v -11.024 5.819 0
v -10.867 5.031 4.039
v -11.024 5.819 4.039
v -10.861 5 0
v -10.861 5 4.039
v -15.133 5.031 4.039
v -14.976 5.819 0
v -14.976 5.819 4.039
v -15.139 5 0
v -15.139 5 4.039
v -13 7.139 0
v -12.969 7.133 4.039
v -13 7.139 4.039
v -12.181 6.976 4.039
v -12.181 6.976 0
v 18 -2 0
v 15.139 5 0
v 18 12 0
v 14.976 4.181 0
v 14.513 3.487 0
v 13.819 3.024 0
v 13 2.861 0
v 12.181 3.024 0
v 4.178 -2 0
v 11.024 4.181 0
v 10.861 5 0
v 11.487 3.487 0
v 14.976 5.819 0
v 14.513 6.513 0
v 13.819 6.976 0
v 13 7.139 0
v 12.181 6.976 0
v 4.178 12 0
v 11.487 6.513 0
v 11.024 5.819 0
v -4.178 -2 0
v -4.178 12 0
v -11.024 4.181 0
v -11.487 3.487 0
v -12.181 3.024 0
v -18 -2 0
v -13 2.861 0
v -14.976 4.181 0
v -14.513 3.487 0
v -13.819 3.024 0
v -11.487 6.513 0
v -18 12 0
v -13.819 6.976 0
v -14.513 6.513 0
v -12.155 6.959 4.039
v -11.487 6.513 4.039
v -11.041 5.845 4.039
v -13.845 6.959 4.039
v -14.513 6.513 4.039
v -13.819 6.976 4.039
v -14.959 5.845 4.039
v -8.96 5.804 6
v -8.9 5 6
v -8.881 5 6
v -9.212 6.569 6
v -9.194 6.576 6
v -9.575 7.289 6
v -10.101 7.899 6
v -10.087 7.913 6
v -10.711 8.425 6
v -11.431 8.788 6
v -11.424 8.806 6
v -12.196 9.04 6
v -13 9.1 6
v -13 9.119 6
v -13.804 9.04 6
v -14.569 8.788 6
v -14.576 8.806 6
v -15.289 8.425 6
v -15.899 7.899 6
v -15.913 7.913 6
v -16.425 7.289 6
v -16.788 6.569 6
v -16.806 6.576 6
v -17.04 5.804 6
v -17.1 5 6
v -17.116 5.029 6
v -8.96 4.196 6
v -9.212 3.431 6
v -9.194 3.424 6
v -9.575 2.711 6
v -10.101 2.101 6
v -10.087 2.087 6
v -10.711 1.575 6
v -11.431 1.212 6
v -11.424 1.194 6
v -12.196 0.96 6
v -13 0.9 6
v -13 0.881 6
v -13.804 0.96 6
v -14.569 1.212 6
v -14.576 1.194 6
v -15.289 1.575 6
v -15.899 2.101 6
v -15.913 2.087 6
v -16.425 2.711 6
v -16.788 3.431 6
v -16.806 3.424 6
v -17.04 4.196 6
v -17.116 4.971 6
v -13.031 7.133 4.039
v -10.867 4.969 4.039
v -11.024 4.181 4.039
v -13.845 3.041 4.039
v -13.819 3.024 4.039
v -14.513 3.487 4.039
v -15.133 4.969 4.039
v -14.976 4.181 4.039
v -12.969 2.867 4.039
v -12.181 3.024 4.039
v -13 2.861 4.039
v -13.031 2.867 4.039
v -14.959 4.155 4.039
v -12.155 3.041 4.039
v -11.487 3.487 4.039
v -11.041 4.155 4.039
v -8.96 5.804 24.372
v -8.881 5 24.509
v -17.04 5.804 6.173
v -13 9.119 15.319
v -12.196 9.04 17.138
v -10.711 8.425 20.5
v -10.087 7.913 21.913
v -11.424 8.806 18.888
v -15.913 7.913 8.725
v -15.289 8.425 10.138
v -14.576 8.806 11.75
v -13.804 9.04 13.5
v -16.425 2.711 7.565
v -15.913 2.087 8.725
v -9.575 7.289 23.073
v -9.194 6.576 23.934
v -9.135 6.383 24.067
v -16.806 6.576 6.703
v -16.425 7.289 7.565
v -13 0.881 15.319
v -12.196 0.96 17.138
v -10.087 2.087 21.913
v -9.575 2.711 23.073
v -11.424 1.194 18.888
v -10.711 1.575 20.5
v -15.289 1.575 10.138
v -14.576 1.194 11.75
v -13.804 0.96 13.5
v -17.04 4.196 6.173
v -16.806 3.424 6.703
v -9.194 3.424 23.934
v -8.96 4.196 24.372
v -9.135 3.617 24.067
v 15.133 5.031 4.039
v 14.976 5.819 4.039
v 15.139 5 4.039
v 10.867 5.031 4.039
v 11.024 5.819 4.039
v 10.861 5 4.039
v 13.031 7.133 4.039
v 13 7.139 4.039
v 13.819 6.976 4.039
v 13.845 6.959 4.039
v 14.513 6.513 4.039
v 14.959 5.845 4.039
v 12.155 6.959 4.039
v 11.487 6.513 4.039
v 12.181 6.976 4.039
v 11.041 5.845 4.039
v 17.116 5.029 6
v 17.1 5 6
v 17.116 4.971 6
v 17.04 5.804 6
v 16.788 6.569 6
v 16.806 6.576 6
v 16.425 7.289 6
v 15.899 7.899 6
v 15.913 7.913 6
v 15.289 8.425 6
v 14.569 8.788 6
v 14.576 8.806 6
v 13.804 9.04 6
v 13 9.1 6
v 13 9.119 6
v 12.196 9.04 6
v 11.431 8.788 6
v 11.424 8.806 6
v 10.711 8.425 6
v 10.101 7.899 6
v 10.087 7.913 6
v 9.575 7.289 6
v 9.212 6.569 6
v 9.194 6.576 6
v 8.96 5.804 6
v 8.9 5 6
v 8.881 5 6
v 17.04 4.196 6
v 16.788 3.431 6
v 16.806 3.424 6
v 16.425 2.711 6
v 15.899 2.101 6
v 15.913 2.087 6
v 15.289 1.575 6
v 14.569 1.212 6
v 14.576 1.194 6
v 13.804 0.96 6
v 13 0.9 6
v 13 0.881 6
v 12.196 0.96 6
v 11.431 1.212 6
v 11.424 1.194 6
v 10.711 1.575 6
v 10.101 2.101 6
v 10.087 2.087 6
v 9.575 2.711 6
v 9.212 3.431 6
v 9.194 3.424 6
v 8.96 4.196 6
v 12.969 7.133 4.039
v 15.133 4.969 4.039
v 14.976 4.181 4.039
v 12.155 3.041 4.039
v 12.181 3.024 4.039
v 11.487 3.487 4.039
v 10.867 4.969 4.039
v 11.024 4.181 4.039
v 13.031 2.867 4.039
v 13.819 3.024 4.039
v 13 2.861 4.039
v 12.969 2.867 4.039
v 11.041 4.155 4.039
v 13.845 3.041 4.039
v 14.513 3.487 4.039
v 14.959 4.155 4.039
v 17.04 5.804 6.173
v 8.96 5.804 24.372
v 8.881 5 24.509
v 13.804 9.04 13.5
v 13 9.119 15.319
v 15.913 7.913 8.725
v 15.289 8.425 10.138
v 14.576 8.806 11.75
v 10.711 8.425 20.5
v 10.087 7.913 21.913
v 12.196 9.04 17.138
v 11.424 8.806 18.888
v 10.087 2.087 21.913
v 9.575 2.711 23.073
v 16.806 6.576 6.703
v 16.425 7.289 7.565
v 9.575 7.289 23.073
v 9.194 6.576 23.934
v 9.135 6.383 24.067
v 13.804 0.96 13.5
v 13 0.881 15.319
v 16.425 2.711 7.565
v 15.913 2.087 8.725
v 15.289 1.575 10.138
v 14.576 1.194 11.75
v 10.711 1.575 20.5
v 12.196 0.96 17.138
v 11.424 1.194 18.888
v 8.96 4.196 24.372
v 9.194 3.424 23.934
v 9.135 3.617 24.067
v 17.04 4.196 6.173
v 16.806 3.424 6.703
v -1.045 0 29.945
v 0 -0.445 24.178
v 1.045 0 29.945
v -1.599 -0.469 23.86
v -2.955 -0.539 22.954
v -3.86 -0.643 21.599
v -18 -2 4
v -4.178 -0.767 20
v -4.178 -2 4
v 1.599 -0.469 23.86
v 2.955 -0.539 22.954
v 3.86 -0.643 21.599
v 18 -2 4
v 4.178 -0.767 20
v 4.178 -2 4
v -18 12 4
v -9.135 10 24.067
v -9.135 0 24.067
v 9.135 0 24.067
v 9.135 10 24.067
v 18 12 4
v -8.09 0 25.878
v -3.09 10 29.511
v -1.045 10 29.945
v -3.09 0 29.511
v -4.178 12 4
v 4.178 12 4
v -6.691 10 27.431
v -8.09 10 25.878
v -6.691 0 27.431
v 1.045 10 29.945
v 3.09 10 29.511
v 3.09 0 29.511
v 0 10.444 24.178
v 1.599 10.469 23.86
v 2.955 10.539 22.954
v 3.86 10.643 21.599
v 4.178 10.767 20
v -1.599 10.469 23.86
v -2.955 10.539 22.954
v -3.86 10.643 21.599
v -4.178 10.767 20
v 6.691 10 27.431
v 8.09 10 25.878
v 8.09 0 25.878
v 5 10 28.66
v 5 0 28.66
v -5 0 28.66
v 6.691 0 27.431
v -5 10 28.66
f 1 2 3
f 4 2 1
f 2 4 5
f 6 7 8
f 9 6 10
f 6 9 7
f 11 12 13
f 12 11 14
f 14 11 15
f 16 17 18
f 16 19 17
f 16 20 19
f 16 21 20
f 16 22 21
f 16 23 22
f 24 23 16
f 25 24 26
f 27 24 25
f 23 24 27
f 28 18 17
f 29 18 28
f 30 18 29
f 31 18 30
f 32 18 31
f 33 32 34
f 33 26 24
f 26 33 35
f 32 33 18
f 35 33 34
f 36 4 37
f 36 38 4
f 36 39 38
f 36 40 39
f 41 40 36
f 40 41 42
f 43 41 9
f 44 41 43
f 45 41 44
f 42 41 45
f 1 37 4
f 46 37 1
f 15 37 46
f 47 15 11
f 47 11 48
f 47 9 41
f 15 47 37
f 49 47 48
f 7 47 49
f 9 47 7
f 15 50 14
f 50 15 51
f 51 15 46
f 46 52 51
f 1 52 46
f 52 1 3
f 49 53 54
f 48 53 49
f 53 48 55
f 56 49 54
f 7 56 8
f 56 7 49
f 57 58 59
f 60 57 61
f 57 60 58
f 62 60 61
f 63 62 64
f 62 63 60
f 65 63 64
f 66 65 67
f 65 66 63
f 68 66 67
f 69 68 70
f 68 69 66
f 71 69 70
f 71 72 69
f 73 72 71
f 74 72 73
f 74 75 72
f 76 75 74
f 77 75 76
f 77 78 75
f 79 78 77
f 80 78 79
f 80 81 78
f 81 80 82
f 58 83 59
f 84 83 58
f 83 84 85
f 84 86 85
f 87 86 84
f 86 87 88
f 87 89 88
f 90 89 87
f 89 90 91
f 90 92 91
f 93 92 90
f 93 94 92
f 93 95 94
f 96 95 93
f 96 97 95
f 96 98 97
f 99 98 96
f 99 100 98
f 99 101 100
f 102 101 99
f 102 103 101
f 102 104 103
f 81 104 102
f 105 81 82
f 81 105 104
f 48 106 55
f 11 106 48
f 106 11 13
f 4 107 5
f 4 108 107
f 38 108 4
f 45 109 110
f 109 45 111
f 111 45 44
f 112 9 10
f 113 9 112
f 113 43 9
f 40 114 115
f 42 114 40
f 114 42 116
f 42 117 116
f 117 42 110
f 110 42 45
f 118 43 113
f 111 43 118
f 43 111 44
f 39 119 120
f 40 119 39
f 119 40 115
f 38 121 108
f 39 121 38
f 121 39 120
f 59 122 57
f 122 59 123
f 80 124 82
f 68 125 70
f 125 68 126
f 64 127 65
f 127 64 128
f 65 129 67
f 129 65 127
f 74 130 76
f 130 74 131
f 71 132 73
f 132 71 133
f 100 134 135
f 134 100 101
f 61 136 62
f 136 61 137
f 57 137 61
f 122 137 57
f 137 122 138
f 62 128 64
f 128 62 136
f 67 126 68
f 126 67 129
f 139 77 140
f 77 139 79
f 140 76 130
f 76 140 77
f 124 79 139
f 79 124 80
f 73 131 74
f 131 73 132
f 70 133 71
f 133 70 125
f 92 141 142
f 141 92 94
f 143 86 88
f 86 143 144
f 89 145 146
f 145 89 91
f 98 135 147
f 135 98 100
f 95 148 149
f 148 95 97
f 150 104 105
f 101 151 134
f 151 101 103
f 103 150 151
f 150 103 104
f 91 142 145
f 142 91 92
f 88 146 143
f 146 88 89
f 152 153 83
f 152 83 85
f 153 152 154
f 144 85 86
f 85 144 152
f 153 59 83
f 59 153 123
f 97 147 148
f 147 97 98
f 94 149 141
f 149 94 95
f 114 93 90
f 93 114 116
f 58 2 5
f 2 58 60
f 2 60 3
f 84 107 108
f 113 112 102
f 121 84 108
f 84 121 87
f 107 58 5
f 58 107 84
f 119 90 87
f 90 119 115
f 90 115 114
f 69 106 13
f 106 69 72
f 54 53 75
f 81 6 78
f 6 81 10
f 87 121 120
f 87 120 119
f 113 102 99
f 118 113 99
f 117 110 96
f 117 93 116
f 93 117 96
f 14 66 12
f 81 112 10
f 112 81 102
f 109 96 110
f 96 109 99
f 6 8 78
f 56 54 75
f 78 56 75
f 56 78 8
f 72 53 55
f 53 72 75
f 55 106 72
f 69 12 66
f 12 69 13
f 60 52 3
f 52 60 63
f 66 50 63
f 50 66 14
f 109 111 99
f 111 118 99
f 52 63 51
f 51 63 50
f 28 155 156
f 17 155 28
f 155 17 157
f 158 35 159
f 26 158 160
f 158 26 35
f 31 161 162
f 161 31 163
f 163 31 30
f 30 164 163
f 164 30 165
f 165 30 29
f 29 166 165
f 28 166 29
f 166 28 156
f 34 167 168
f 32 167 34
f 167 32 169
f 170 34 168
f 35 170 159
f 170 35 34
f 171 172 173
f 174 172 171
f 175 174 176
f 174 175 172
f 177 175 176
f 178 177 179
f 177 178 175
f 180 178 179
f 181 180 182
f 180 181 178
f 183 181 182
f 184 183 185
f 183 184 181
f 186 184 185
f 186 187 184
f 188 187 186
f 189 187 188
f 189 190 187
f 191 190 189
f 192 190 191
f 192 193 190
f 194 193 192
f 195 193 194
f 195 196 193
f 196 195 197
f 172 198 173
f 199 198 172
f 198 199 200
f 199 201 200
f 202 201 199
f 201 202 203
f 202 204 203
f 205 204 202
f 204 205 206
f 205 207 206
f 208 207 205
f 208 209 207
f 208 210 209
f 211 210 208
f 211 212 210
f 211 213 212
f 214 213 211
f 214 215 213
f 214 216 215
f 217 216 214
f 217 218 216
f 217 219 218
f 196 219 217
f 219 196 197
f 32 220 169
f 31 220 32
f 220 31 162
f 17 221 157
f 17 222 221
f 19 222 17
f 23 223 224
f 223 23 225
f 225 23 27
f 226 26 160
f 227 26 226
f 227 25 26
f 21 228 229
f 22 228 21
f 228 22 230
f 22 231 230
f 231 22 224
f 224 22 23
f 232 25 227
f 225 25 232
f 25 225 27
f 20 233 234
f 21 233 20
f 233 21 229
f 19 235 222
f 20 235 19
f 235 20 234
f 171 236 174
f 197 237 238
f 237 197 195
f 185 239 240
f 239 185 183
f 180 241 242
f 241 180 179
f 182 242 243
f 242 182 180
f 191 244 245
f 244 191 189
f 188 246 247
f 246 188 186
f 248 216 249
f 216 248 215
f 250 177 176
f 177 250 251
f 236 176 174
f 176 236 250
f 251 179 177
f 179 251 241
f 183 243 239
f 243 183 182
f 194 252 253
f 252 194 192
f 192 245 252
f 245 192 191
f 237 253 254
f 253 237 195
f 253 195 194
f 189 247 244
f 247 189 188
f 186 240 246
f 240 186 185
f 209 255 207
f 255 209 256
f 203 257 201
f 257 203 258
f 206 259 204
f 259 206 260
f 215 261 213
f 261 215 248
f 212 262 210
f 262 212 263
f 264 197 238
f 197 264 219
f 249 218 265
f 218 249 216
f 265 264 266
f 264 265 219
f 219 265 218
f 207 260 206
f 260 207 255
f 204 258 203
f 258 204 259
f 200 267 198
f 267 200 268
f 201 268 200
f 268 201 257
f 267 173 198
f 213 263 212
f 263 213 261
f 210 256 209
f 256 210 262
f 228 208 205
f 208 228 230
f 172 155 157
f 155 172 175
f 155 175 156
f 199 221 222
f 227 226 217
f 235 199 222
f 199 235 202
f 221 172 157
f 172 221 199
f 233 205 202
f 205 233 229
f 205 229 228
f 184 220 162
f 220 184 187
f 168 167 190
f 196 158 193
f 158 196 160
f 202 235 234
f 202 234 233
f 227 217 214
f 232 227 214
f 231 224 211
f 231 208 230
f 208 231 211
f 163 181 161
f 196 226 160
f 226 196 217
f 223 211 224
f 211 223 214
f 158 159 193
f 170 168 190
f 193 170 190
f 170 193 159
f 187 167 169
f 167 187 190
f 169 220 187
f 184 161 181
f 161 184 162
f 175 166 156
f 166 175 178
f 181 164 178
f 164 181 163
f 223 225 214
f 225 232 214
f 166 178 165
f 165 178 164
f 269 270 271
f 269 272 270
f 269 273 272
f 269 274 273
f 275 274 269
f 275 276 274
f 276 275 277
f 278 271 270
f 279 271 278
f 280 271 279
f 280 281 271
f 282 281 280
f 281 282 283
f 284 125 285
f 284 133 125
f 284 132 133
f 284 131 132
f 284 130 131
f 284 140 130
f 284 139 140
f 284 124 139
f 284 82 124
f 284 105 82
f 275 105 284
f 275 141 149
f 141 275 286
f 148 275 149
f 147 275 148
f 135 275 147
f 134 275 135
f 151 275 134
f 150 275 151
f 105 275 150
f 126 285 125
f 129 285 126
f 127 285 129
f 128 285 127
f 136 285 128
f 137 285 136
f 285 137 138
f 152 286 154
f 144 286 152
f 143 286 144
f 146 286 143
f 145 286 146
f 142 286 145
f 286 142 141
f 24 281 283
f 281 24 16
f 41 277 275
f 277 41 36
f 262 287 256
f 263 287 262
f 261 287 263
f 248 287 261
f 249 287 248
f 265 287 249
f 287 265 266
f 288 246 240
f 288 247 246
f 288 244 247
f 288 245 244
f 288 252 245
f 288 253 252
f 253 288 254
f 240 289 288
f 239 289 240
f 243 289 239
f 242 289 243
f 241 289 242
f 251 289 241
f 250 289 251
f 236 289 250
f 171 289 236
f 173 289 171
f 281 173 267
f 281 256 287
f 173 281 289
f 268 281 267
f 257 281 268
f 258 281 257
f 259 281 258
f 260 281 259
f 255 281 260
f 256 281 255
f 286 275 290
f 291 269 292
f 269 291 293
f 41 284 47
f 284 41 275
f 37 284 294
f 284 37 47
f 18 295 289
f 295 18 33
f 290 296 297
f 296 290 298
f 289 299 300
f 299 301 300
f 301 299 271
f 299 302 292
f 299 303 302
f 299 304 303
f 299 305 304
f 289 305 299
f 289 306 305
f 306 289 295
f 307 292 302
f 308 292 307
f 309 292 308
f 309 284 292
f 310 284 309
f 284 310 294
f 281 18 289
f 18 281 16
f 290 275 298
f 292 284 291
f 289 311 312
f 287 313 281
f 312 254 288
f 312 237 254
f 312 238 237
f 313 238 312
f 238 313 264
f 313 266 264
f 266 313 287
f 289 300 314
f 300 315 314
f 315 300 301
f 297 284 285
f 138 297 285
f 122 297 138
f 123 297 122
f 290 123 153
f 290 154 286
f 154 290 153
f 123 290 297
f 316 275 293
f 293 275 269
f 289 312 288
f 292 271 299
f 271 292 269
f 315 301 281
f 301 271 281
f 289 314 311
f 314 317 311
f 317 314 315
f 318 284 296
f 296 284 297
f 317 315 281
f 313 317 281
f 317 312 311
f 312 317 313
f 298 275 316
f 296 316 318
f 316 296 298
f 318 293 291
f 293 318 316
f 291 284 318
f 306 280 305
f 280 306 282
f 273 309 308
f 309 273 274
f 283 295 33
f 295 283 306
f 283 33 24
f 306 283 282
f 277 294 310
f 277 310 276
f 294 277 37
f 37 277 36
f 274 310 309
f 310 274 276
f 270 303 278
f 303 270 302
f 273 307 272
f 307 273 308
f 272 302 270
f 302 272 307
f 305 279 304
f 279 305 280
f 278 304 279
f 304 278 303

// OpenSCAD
// file: bolts.scad
$radial_error = 0.1;
$fn = 4*4;

module cylinder_outer(height, radius, fn=$fn, radial_error=$radial_error) {
	fudge = 1/cos(180/fn);
	cylinder(h=height,r=radius*fudge+$radial_error, $fn=fn);
}

module cylinder_inner(height, radius, fn=$fn) {
	cylinder(h=height,r=radius-$radial_error,$fn=fn);
}

// Make a hole. The diameter is the size of the screw (e.g. 3 for M3). Depth is how far the hole should go for the thread, and inset is how far out there should be a hole for the head to go.
module hole(diameter=3, depth=6, inset=10) {
	cylinder_outer(depth, diameter/2);
	translate([0, 0, depth]) cylinder_outer(inset, diameter, 32);
}

module countersunk_hole(diameter=3, depth=6, inset=10) {
	hole(diameter, depth, inset);
	translate([0, 0, depth-diameter/2]) cylinder(r1=diameter/2+$radial_error, r2=diameter+$radial_error, h=diameter/2);
}

module threaded_countersunk_hole(diameter=3, depth=6, inset=10) {
	hole(diameter*0.9, depth, inset);
	translate([0, 0, depth-diameter/2]) cylinder(r1=diameter/2+$radial_error, r2=diameter+$radial_error, h=diameter/2);
}

module knurled_insert(diameter = 3, depth = 6, thickness = 1) {
	cylinder_inner(depth, diameter/2 + thickness);
}

module knurled_hole(diameter = 3, depth = 6, inset = 10, insert = 4, thickness = 1) {
	hole(diameter, depth, inset);
	
	knurled_insert(diameter, insert, thickness);
}

module countersunk_knurled_hole(diameter = 3, depth = 6, inset = 10, insert = 4, thickness = 1) {
	countersunk_hole(diameter, depth, inset);
	
	knurled_insert(diameter, insert, thickness);
}

// Make a hole for a bolt/screw combination.
module bolted_hole(diameter=3, depth=8, nut_offset=2, shaft_length=10, inset=10) {
	hole(diameter, depth, inset);
	hull() {
		shaft_width = diameter;
		translate([0, 0, nut_offset]) rotate(360/12, [0, 0, 1]) cylinder_outer(diameter, shaft_width, 6);
		translate([0, shaft_length, nut_offset]) rotate(360/12, [0, 0, 1]) cylinder_outer(diameter, shaft_width, 6);
	}
}

module countersunk_bolted_hole(diameter=3, depth=8, nut_offset=2, shaft_length=10, inset=10) {
	countersunk_hole(diameter, depth, inset);
	hull() {
		shaft_width = diameter;
		translate([0, 0, nut_offset]) rotate(360/12, [0, 0, 1]) cylinder_outer(diameter, shaft_width, 6);
		translate([0, shaft_length, nut_offset]) rotate(360/12, [0, 0, 1]) cylinder_outer(diameter, shaft_width, 6);
	}
}

module mounting_hole(diameter=3, depth=6, inset=10, outset=3) {
	difference() {
		cylinder_outer(depth, diameter/2+outset);
		hole(diameter=diameter, depth=depth, inset=inset);
	}
}

render() rotate(90, [1, 0, 0]) difference() {
	cube([40, 10, 10]);
	translate([5, 5, 0]) bolted_hole(diameter=3, depth=8);
	translate([15, 5, 0]) bolted_hole(diameter=4, depth=8);
	translate([25, 5, 0]) countersunk_hole(diameter=4, depth=8);
	translate([35, 5, 0]) knurled_hole();
}
// main file
use <bolts.scad>;

// I find that adjusting the support bars is a good way to fix level issues.
// In my case I print 23 for the front clamps and 24 for the back.
internal_height = 24;

difference() {
	hull() {
		translate([-18, -2, 0]) cube([18*2, 14, 4]);
		translate([0, 0, internal_height-4]) rotate([-90, 0, 0]) cylinder(d=20, h=10);
	}
	
	translate([0, -2, 0]) hull() {
		rotate([-90, 0, 0]) cylinder_outer(20, 8/2);
		translate([0, 0, internal_height-4]) rotate([-90, 0, 0]) #cylinder_outer(20, 8/2);
	}
	
	translate([-18, -2, -10]) cube([18*2, 14, 10]);
	
	translate([-13, 5, 0]) countersunk_hole(4, 6, inset=40);
	translate([13, 5, 0]) countersunk_hole(4, 6, inset=40);
}
